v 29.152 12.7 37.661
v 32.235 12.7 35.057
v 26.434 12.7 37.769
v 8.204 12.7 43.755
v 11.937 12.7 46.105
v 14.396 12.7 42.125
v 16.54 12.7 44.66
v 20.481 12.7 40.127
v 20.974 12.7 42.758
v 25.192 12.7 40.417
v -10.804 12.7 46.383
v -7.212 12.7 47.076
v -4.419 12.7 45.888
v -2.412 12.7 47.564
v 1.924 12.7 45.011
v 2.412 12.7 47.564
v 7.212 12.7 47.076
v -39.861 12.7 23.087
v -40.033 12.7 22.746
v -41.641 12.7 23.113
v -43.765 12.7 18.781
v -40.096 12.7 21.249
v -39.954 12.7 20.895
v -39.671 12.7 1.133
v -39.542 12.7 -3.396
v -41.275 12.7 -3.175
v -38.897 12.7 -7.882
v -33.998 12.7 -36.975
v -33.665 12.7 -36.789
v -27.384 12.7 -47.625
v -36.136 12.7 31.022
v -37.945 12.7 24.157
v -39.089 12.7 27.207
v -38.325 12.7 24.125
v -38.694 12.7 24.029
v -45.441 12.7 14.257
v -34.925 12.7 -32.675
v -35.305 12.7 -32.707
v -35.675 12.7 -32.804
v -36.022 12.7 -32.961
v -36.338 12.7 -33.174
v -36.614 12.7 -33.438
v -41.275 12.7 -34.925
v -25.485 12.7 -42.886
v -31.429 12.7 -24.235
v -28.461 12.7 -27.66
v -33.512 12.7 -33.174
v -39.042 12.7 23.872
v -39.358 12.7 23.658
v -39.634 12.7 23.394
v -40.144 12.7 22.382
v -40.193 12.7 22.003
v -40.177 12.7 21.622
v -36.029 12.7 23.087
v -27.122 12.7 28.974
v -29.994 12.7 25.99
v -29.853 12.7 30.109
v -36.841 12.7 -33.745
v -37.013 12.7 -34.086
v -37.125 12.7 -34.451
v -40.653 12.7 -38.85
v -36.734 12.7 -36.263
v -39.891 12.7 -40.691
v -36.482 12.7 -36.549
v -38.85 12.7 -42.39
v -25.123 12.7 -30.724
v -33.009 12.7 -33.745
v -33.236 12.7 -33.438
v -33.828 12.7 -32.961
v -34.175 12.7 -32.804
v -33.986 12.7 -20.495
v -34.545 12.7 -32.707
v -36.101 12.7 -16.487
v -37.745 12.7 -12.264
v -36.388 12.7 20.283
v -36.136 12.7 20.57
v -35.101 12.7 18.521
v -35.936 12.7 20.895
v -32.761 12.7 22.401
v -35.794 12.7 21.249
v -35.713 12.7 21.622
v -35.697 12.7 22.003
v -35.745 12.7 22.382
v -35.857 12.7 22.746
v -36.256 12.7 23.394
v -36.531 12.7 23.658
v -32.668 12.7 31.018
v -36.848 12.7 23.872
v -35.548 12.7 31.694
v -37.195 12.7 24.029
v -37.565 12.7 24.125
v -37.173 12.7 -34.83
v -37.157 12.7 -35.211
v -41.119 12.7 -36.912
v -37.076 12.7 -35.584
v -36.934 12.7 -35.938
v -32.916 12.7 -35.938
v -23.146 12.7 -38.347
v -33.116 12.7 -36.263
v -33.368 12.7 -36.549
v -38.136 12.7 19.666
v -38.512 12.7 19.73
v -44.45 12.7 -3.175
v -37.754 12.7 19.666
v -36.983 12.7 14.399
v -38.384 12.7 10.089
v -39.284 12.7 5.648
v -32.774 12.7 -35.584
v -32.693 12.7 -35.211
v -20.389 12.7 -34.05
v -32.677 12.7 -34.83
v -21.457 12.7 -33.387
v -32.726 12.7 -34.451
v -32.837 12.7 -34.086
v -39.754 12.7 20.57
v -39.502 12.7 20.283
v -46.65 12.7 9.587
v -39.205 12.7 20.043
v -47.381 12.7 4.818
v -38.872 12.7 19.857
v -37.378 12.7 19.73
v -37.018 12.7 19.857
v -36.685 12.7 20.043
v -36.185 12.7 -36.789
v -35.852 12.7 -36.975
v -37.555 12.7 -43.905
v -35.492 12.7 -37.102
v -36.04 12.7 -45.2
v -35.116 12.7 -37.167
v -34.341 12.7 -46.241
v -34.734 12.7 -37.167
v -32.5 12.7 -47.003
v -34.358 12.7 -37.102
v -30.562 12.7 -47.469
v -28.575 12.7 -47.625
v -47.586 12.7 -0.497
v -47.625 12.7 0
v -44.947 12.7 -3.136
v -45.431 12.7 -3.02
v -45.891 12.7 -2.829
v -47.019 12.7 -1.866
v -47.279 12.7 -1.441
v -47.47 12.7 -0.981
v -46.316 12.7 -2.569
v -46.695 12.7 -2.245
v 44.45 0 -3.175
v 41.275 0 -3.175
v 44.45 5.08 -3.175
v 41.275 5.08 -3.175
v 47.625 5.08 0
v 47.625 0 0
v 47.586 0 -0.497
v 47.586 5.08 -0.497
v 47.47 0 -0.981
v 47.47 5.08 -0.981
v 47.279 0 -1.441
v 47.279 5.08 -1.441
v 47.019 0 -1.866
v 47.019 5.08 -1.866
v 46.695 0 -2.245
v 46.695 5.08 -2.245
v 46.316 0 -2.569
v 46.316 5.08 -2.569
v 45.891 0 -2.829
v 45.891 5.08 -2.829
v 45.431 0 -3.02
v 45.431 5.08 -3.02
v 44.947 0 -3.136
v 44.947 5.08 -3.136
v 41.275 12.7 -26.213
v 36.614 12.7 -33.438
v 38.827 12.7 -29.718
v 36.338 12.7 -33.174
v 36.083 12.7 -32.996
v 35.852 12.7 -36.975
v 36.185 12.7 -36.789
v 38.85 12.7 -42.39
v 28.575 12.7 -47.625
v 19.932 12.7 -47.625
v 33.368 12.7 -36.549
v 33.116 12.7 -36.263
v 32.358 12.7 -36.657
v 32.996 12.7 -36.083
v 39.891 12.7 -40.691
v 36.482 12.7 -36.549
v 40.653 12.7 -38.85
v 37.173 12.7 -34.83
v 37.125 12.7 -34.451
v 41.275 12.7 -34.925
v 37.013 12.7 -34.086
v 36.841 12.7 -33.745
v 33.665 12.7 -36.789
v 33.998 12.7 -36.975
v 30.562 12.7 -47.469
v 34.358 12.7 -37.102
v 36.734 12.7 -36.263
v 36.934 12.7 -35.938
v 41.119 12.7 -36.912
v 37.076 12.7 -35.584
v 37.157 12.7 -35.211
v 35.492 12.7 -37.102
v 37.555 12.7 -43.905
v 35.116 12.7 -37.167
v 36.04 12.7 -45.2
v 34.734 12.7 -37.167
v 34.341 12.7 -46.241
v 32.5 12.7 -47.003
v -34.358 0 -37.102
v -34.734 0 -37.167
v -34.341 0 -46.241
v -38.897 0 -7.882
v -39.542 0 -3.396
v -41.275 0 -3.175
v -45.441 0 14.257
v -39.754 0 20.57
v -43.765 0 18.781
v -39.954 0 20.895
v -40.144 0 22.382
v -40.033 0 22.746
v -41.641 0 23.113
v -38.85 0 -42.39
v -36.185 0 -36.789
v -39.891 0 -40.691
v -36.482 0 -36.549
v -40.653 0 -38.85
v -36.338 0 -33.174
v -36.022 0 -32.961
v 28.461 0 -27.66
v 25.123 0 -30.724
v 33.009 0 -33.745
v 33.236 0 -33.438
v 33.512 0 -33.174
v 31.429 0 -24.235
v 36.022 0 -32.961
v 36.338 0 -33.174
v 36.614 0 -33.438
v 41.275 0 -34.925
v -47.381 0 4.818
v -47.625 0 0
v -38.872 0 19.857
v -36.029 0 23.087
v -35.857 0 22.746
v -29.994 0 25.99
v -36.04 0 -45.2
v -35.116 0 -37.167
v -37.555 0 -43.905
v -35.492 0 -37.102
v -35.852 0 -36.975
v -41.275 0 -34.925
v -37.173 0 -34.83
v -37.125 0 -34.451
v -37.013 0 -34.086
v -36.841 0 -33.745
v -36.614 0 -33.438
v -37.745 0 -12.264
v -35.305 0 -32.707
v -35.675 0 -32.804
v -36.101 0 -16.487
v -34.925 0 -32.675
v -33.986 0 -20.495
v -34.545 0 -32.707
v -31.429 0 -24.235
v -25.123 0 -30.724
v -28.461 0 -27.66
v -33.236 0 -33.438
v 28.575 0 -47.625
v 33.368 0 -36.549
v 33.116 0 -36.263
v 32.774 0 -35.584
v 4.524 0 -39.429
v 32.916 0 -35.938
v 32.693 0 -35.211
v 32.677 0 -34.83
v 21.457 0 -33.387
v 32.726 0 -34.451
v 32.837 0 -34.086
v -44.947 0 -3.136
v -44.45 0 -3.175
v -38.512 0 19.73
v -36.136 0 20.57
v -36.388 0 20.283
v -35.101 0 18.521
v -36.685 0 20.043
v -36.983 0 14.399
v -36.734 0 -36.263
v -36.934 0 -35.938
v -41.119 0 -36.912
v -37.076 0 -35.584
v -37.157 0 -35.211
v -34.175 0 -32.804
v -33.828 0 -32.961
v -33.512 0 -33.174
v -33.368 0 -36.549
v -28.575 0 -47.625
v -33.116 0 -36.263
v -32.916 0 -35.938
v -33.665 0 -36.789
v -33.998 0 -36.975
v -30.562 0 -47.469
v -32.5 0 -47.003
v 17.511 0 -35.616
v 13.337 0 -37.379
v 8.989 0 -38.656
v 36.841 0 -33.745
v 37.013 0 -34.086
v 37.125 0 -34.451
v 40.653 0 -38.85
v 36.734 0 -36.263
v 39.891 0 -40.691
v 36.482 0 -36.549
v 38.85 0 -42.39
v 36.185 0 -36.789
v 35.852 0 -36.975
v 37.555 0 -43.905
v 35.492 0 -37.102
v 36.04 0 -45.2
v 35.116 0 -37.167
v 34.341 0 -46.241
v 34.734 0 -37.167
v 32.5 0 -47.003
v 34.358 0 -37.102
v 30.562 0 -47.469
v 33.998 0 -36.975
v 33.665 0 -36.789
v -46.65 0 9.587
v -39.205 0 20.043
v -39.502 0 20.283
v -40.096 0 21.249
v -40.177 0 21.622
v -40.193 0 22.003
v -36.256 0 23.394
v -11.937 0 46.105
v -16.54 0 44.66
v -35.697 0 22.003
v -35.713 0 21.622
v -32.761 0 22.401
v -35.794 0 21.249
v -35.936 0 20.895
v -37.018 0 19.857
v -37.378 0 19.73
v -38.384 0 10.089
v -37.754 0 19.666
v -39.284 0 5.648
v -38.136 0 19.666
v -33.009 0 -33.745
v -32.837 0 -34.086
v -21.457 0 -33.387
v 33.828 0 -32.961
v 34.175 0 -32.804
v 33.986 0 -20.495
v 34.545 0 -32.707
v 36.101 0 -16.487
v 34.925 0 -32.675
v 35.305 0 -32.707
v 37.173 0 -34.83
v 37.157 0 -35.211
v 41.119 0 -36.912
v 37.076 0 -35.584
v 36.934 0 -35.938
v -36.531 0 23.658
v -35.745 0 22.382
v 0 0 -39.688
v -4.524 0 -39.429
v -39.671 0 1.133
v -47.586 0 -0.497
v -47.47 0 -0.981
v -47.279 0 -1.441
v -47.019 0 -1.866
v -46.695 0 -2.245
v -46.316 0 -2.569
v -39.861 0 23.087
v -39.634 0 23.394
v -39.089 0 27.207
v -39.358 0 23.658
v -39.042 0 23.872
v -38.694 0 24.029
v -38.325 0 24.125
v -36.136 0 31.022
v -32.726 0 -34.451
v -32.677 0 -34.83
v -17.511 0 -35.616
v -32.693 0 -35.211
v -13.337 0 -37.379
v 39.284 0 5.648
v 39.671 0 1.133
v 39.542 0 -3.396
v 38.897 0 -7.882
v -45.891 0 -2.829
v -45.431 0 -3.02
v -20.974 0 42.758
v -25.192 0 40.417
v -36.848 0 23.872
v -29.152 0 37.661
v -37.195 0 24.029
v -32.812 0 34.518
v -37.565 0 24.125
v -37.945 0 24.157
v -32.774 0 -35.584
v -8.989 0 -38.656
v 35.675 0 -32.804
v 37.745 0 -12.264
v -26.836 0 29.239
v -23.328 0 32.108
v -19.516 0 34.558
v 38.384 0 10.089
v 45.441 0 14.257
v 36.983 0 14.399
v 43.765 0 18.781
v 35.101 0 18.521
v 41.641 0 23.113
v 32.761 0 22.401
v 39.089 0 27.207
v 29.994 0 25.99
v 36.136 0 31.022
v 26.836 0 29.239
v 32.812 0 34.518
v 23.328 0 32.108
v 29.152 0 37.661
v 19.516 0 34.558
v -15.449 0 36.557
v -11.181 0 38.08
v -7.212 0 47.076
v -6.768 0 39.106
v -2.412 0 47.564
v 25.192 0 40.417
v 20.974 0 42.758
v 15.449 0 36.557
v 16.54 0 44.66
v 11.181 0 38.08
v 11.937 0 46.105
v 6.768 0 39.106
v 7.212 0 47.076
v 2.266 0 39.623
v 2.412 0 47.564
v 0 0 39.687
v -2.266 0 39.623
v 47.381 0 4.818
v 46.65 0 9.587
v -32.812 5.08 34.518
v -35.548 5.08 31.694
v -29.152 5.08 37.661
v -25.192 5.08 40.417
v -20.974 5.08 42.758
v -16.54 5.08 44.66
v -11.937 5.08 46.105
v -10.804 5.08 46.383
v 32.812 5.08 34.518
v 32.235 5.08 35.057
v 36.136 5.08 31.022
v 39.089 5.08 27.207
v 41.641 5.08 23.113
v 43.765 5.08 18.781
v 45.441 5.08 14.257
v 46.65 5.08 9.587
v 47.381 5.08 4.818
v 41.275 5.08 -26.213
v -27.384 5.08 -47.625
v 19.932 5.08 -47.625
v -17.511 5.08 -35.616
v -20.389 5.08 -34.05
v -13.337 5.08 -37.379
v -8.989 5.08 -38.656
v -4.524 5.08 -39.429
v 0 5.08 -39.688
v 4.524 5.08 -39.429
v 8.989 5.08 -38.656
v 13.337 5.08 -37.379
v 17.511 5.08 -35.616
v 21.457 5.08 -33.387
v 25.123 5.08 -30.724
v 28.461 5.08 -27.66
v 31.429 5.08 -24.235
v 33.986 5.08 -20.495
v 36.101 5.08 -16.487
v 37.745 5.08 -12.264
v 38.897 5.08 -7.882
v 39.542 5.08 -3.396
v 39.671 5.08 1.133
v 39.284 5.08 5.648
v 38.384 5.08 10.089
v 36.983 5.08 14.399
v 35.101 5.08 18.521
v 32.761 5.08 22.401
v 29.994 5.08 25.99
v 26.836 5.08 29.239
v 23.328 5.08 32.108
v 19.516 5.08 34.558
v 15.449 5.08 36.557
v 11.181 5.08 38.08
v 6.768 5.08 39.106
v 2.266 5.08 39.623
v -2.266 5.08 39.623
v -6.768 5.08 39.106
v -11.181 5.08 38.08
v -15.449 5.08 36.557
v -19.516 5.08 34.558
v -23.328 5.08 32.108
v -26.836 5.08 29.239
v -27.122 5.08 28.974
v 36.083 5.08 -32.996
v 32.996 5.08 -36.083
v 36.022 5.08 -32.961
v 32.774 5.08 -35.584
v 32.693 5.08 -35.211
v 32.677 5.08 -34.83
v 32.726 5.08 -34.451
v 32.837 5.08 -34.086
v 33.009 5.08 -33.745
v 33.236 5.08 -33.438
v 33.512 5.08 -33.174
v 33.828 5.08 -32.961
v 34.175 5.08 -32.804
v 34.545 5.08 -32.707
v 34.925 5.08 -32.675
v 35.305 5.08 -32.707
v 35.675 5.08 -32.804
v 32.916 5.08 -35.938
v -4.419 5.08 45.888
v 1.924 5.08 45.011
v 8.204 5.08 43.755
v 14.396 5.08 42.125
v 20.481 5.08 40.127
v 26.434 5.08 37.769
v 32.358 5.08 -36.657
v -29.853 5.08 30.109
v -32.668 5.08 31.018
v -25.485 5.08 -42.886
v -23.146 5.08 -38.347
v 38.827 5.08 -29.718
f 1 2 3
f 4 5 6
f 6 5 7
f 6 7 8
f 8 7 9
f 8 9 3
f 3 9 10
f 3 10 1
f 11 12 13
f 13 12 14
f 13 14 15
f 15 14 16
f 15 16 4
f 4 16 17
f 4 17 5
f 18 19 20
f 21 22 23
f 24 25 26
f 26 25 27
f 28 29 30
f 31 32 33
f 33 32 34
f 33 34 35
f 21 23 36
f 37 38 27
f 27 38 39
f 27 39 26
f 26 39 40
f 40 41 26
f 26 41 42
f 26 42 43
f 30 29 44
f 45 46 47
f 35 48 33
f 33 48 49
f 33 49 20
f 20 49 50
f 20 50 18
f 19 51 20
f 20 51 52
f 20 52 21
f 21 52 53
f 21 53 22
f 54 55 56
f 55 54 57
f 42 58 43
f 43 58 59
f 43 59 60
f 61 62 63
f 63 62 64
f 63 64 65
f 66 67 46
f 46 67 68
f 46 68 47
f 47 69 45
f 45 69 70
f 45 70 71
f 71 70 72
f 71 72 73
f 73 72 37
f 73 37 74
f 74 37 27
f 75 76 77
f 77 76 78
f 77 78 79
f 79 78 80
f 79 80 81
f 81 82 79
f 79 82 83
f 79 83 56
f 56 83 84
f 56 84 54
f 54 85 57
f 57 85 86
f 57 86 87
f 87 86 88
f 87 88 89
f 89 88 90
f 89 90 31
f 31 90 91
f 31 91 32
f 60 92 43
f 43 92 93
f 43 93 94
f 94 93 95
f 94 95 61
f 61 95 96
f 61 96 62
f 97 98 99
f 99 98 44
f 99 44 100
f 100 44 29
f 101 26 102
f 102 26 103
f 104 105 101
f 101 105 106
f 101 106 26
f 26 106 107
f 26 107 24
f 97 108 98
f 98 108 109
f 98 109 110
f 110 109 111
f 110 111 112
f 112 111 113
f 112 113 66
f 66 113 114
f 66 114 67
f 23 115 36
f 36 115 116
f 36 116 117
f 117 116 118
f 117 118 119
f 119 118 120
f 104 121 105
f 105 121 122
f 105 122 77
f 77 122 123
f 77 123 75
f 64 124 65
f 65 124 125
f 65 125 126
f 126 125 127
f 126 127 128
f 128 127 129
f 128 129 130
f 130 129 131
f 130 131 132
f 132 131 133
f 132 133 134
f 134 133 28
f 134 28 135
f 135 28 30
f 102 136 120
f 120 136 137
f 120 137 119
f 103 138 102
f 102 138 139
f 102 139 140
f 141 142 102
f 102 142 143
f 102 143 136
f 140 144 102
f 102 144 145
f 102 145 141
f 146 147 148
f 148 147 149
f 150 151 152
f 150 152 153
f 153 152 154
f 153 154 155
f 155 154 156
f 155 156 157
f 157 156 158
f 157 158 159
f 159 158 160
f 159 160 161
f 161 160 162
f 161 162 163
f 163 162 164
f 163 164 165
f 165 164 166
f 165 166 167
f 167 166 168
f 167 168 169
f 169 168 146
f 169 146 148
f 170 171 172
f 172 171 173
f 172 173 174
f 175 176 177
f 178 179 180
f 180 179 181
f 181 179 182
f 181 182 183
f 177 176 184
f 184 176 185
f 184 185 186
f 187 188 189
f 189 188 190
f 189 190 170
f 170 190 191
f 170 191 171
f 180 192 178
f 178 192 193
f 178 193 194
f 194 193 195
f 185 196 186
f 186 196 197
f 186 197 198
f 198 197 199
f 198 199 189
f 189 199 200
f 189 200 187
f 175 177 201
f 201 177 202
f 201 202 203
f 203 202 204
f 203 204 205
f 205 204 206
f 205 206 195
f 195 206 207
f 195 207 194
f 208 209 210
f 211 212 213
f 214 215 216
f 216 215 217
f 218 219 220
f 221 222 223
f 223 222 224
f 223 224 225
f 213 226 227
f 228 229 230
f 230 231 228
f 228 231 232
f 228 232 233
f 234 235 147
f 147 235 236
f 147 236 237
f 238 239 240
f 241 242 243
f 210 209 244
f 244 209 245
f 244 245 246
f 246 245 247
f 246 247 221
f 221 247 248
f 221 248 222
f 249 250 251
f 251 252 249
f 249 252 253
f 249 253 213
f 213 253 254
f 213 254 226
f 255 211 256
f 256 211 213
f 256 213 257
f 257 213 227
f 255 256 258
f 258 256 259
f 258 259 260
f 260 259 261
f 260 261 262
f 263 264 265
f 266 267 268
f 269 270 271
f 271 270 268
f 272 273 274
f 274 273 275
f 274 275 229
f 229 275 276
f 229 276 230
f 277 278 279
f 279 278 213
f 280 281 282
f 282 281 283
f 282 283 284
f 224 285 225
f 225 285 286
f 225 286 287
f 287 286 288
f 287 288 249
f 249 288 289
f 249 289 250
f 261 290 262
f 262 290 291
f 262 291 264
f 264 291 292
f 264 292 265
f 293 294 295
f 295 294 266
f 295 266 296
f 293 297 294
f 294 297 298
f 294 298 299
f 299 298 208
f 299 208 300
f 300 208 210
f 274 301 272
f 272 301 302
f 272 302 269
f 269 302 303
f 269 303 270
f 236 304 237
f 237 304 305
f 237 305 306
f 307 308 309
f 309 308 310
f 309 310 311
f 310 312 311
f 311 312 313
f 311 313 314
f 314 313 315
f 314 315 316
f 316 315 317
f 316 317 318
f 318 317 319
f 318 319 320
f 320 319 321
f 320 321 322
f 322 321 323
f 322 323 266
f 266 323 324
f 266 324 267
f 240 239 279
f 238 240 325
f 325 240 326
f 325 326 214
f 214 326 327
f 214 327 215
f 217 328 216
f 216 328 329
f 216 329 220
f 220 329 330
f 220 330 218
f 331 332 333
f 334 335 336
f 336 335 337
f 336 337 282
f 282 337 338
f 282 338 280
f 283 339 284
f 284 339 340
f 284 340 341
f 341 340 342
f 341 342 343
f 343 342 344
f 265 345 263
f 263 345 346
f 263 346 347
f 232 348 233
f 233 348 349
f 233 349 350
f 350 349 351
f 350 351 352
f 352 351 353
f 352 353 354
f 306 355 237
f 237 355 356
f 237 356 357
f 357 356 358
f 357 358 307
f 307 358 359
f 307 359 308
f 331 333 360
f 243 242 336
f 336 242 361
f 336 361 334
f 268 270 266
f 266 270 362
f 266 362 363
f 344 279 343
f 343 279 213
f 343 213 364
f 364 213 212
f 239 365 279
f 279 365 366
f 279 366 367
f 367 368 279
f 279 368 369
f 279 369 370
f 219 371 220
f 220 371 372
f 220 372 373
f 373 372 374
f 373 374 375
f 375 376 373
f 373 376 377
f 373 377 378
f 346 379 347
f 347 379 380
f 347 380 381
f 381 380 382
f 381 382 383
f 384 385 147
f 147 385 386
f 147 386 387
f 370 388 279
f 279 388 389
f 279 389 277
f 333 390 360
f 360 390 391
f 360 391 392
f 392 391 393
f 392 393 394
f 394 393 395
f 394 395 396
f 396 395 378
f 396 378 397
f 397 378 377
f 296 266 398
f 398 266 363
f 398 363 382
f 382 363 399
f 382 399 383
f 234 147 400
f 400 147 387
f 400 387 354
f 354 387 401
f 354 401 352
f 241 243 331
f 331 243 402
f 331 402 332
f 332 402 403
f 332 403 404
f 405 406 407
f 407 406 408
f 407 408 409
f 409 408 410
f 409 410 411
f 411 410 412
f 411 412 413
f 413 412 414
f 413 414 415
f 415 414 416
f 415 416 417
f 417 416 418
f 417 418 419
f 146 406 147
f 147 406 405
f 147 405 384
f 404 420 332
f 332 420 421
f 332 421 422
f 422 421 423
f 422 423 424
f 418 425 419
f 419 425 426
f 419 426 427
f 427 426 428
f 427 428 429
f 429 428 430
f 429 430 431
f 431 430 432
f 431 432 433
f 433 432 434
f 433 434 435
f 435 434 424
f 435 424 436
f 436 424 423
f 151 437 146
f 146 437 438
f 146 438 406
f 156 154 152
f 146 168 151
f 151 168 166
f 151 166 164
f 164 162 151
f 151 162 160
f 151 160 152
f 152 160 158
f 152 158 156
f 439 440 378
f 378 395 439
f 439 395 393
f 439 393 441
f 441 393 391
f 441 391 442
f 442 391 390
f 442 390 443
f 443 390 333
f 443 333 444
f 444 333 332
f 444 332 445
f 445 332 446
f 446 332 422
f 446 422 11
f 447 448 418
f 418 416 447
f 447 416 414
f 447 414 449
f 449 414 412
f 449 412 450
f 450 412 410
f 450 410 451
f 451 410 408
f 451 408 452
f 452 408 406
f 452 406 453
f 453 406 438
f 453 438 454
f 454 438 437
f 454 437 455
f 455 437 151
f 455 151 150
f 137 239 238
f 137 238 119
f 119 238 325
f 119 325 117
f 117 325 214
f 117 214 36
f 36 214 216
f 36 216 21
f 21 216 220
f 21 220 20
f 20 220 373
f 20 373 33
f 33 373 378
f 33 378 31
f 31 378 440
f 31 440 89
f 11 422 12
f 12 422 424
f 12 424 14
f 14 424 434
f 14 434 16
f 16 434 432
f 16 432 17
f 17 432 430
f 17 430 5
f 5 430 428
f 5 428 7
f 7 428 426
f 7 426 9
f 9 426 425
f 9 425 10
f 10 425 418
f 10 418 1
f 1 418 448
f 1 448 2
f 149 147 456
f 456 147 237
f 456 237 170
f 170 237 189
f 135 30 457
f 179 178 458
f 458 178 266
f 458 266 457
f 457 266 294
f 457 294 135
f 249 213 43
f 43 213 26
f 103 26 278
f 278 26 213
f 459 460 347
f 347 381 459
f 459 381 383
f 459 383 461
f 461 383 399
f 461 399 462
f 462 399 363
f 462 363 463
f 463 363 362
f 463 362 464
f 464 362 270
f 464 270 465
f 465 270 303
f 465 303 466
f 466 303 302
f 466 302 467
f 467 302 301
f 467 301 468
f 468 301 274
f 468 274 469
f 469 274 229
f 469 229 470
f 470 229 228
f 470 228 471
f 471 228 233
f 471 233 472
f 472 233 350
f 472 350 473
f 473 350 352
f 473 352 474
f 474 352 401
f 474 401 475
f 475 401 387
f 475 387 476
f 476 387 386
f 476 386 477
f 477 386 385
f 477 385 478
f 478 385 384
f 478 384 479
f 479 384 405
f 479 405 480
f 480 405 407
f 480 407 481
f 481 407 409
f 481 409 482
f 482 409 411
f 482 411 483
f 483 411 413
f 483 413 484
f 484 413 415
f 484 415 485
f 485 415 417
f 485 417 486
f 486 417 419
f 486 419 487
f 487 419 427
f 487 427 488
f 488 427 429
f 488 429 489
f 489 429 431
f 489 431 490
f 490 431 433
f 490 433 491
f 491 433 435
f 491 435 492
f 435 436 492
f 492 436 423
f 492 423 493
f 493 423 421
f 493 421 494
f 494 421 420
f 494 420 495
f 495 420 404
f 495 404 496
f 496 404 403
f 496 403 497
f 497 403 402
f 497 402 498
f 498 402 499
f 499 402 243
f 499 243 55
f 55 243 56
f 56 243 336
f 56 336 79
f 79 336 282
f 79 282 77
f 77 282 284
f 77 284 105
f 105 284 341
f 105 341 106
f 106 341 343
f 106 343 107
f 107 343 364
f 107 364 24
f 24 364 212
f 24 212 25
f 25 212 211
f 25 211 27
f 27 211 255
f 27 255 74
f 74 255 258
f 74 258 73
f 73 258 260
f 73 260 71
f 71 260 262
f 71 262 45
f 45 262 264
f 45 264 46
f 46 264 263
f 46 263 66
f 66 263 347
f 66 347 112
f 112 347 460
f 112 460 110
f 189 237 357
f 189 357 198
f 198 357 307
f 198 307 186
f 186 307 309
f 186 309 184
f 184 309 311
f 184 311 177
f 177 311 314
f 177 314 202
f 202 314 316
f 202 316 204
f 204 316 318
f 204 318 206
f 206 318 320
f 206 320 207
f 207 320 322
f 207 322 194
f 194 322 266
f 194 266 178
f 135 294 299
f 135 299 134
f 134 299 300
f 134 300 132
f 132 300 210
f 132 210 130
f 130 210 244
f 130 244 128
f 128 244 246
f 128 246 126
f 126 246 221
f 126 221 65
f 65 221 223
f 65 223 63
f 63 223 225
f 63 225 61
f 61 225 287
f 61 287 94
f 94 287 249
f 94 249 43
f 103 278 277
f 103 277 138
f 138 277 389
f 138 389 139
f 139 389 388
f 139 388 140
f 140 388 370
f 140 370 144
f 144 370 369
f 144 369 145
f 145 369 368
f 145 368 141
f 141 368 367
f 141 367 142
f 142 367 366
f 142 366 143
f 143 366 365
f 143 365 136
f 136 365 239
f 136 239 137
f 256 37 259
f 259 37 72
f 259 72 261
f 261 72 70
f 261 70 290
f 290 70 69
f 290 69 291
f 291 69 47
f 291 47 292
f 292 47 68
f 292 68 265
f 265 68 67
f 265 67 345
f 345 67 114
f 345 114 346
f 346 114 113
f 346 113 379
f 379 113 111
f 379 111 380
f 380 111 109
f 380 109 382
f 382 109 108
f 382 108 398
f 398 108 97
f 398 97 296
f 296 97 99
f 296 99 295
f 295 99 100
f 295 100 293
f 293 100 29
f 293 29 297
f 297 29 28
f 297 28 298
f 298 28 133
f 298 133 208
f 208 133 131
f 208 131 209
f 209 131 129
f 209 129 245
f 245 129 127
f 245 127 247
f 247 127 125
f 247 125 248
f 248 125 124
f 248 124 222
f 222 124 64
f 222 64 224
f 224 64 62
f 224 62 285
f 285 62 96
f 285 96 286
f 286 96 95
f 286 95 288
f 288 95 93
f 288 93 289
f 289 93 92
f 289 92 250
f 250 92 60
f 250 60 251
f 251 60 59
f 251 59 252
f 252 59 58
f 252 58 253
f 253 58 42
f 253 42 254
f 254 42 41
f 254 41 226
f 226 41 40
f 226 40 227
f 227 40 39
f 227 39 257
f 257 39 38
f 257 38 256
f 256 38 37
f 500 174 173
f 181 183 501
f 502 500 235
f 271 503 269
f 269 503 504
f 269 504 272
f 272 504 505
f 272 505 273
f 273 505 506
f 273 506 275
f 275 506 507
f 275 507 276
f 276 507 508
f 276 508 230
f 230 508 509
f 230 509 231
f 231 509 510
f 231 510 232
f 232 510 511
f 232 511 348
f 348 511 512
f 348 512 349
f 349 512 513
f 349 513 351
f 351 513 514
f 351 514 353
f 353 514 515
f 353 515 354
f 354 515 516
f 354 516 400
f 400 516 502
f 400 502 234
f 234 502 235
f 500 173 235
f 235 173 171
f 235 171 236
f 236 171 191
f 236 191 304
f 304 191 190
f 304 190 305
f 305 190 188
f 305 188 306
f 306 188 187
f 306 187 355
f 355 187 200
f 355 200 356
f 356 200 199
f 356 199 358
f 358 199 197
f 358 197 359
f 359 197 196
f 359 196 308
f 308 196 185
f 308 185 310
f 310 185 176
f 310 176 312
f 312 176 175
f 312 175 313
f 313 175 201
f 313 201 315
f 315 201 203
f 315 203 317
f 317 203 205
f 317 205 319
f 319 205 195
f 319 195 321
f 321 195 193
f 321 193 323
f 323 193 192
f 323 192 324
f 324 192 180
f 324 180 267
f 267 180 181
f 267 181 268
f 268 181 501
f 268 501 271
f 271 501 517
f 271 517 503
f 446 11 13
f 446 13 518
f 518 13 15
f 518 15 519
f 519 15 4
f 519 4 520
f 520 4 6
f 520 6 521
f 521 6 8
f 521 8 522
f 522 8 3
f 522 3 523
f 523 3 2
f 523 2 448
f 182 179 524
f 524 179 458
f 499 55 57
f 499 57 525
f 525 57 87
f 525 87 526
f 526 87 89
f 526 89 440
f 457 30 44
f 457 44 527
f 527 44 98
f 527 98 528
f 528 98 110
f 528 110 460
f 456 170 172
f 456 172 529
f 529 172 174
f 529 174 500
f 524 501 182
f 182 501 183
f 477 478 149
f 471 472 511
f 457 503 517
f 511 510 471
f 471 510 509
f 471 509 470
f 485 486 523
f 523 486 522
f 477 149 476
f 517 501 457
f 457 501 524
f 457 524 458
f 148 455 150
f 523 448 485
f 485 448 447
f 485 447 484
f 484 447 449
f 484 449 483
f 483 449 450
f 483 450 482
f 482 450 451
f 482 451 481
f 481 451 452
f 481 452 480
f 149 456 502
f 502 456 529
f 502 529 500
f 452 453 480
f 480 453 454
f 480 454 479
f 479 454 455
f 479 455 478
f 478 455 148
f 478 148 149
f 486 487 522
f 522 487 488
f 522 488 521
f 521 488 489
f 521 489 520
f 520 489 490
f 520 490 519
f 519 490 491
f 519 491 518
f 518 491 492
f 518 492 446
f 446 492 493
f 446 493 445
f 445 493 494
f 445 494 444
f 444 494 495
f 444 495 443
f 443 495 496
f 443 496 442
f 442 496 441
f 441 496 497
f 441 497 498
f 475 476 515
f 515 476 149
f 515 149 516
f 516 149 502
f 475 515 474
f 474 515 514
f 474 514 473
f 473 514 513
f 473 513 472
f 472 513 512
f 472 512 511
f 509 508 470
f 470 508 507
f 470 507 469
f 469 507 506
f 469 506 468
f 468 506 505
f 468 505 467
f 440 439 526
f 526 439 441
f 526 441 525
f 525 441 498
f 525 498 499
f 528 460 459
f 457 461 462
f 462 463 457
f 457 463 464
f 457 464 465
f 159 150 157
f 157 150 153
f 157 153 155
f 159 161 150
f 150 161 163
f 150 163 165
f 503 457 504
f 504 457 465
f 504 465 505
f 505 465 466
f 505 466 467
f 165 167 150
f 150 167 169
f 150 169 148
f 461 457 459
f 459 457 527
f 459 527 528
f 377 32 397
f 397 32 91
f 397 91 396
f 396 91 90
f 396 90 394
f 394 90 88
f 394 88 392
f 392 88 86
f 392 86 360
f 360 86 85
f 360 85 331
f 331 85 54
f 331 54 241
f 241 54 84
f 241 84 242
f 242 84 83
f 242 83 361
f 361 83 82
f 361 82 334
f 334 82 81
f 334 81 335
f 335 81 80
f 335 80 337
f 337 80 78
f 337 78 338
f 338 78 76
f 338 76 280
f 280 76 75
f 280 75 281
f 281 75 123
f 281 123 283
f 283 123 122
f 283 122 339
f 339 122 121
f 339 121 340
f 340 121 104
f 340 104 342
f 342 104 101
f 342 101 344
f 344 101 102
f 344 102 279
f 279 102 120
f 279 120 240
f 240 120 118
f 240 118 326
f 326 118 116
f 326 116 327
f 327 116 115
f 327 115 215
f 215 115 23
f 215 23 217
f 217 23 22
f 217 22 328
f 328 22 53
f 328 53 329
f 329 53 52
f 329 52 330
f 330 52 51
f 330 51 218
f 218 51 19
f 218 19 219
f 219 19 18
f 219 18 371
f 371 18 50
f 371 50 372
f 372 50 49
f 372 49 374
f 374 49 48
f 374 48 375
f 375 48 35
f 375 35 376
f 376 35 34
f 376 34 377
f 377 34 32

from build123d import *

# Parameters (mm, degrees)
SKETCH1_R           = 39.6875
BOSS_EXTRUDE1_DEPTH = 12.7
FILLET1_R           = 12.7
FILLET2_R           = 3.175
SKETCH2_R           = 2.25
CUT_EXTRUDE1_DEPTH  = 69.538830235
CUT_EXTRUDE2_DEPTH  = 7.62
SKETCH9_R           = 2.25
CUT_EXTRUDE3_DEPTH  = 69.538830235


with BuildPart() as part:
    # Sketch1 → Boss-Extrude1 (new body)
    with BuildSketch(Plane(origin=(0, 0, 0), x_dir=(1, 0, 0), z_dir=(0, 1, 0))):
        with BuildLine():
            Line((-47.625, 0), (-47.625, 3.175))
            Line((-47.625, 3.175), (-41.275, 3.175))
            Line((-41.275, 3.175), (-41.275, 47.625))
            Line((-41.275, 47.625), (41.275, 47.625))
            Line((41.275, 47.625), (41.275, 3.175))
            Line((41.275, 3.175), (47.625, 3.175))
            Line((47.625, 3.175), (47.625, 0))
            ThreePointArc((47.625, 0), (0, -47.625), (-47.625, 0))
        make_face()
        with Locations(Location((0, 0, 0), (0, 0, 270))):
            Circle(SKETCH1_R, mode=Mode.SUBTRACT)
    extrude(amount=BOSS_EXTRUDE1_DEPTH)

    # Fillet1
    fillet1_edges = [part.edges().sort_by_distance(p)[0] for p in [
        (-41.275, 6.35, -47.625),
        (41.275, 6.35, -47.625),
    ]]
    fillet(fillet1_edges, radius=FILLET1_R)

    # Fillet2
    fillet2_edges = [part.edges().sort_by_distance(p)[0] for p in [
        (47.625, 6.35, -3.175),
        (-47.625, 6.35, -3.175),
    ]]
    fillet(fillet2_edges, radius=FILLET2_R - 0.0001)  # a hair under: the kernel refuses the full size

    # Sketch2 → Cut-Extrude1 (cut, through all)
    with BuildSketch(Plane(origin=(0, 12.7, 0), x_dir=(1, 0, 0), z_dir=(0, 1, 0))):
        with Locations(Location((-34.925, 34.925, 0), (0, 0, 270))):
            Circle(SKETCH2_R)
        with Locations(Location((34.925, 34.925, 0), (0, 0, 270))):
            Circle(SKETCH2_R)
    extrude(amount=-CUT_EXTRUDE1_DEPTH, mode=Mode.SUBTRACT)

    # Sketch6 → Cut-Extrude2 (cut)
    with BuildSketch(Plane(origin=(0, 12.7, 0), x_dir=(1, 0, 0), z_dir=(0, 1, 0))):
        with BuildLine():
            Line((-49.187681697, -31.694494567), (-48.884558606, -41.276047168))
            ThreePointArc((-48.884558606, -41.276047168), (-5.562483374, -46.004938144), (36.043462017, -33.039217165))
            ThreePointArc((36.043462017, -33.039217165), (48.826767021, 2.582217505), (32.357577485, 36.656625654))
            Line((32.357577485, 36.656625654), (-25.491069939, 87.720848233))
            ThreePointArc((-25.491069939, 87.720848233), (-29.666518146, 56.664530057), (-15.884572215, 28.522262332))
            ThreePointArc((-15.884572215, 28.522262332), (-10.696498958, -13.664606553), (-49.187681697, -31.694494567))
        make_face()
    extrude(amount=-CUT_EXTRUDE2_DEPTH, mode=Mode.SUBTRACT)

    # Sketch9 → Cut-Extrude3 (cut, through all)
    with BuildSketch(Plane(origin=(0, 12.7, 0), x_dir=(1, 0, 0), z_dir=(0, 1, 0))):
        with Locations(Location((-37.944903067, -21.9075, 0), (0, 0, 270))):
            Circle(SKETCH9_R)
    extrude(amount=-CUT_EXTRUDE3_DEPTH, mode=Mode.SUBTRACT)


solid = part.part
